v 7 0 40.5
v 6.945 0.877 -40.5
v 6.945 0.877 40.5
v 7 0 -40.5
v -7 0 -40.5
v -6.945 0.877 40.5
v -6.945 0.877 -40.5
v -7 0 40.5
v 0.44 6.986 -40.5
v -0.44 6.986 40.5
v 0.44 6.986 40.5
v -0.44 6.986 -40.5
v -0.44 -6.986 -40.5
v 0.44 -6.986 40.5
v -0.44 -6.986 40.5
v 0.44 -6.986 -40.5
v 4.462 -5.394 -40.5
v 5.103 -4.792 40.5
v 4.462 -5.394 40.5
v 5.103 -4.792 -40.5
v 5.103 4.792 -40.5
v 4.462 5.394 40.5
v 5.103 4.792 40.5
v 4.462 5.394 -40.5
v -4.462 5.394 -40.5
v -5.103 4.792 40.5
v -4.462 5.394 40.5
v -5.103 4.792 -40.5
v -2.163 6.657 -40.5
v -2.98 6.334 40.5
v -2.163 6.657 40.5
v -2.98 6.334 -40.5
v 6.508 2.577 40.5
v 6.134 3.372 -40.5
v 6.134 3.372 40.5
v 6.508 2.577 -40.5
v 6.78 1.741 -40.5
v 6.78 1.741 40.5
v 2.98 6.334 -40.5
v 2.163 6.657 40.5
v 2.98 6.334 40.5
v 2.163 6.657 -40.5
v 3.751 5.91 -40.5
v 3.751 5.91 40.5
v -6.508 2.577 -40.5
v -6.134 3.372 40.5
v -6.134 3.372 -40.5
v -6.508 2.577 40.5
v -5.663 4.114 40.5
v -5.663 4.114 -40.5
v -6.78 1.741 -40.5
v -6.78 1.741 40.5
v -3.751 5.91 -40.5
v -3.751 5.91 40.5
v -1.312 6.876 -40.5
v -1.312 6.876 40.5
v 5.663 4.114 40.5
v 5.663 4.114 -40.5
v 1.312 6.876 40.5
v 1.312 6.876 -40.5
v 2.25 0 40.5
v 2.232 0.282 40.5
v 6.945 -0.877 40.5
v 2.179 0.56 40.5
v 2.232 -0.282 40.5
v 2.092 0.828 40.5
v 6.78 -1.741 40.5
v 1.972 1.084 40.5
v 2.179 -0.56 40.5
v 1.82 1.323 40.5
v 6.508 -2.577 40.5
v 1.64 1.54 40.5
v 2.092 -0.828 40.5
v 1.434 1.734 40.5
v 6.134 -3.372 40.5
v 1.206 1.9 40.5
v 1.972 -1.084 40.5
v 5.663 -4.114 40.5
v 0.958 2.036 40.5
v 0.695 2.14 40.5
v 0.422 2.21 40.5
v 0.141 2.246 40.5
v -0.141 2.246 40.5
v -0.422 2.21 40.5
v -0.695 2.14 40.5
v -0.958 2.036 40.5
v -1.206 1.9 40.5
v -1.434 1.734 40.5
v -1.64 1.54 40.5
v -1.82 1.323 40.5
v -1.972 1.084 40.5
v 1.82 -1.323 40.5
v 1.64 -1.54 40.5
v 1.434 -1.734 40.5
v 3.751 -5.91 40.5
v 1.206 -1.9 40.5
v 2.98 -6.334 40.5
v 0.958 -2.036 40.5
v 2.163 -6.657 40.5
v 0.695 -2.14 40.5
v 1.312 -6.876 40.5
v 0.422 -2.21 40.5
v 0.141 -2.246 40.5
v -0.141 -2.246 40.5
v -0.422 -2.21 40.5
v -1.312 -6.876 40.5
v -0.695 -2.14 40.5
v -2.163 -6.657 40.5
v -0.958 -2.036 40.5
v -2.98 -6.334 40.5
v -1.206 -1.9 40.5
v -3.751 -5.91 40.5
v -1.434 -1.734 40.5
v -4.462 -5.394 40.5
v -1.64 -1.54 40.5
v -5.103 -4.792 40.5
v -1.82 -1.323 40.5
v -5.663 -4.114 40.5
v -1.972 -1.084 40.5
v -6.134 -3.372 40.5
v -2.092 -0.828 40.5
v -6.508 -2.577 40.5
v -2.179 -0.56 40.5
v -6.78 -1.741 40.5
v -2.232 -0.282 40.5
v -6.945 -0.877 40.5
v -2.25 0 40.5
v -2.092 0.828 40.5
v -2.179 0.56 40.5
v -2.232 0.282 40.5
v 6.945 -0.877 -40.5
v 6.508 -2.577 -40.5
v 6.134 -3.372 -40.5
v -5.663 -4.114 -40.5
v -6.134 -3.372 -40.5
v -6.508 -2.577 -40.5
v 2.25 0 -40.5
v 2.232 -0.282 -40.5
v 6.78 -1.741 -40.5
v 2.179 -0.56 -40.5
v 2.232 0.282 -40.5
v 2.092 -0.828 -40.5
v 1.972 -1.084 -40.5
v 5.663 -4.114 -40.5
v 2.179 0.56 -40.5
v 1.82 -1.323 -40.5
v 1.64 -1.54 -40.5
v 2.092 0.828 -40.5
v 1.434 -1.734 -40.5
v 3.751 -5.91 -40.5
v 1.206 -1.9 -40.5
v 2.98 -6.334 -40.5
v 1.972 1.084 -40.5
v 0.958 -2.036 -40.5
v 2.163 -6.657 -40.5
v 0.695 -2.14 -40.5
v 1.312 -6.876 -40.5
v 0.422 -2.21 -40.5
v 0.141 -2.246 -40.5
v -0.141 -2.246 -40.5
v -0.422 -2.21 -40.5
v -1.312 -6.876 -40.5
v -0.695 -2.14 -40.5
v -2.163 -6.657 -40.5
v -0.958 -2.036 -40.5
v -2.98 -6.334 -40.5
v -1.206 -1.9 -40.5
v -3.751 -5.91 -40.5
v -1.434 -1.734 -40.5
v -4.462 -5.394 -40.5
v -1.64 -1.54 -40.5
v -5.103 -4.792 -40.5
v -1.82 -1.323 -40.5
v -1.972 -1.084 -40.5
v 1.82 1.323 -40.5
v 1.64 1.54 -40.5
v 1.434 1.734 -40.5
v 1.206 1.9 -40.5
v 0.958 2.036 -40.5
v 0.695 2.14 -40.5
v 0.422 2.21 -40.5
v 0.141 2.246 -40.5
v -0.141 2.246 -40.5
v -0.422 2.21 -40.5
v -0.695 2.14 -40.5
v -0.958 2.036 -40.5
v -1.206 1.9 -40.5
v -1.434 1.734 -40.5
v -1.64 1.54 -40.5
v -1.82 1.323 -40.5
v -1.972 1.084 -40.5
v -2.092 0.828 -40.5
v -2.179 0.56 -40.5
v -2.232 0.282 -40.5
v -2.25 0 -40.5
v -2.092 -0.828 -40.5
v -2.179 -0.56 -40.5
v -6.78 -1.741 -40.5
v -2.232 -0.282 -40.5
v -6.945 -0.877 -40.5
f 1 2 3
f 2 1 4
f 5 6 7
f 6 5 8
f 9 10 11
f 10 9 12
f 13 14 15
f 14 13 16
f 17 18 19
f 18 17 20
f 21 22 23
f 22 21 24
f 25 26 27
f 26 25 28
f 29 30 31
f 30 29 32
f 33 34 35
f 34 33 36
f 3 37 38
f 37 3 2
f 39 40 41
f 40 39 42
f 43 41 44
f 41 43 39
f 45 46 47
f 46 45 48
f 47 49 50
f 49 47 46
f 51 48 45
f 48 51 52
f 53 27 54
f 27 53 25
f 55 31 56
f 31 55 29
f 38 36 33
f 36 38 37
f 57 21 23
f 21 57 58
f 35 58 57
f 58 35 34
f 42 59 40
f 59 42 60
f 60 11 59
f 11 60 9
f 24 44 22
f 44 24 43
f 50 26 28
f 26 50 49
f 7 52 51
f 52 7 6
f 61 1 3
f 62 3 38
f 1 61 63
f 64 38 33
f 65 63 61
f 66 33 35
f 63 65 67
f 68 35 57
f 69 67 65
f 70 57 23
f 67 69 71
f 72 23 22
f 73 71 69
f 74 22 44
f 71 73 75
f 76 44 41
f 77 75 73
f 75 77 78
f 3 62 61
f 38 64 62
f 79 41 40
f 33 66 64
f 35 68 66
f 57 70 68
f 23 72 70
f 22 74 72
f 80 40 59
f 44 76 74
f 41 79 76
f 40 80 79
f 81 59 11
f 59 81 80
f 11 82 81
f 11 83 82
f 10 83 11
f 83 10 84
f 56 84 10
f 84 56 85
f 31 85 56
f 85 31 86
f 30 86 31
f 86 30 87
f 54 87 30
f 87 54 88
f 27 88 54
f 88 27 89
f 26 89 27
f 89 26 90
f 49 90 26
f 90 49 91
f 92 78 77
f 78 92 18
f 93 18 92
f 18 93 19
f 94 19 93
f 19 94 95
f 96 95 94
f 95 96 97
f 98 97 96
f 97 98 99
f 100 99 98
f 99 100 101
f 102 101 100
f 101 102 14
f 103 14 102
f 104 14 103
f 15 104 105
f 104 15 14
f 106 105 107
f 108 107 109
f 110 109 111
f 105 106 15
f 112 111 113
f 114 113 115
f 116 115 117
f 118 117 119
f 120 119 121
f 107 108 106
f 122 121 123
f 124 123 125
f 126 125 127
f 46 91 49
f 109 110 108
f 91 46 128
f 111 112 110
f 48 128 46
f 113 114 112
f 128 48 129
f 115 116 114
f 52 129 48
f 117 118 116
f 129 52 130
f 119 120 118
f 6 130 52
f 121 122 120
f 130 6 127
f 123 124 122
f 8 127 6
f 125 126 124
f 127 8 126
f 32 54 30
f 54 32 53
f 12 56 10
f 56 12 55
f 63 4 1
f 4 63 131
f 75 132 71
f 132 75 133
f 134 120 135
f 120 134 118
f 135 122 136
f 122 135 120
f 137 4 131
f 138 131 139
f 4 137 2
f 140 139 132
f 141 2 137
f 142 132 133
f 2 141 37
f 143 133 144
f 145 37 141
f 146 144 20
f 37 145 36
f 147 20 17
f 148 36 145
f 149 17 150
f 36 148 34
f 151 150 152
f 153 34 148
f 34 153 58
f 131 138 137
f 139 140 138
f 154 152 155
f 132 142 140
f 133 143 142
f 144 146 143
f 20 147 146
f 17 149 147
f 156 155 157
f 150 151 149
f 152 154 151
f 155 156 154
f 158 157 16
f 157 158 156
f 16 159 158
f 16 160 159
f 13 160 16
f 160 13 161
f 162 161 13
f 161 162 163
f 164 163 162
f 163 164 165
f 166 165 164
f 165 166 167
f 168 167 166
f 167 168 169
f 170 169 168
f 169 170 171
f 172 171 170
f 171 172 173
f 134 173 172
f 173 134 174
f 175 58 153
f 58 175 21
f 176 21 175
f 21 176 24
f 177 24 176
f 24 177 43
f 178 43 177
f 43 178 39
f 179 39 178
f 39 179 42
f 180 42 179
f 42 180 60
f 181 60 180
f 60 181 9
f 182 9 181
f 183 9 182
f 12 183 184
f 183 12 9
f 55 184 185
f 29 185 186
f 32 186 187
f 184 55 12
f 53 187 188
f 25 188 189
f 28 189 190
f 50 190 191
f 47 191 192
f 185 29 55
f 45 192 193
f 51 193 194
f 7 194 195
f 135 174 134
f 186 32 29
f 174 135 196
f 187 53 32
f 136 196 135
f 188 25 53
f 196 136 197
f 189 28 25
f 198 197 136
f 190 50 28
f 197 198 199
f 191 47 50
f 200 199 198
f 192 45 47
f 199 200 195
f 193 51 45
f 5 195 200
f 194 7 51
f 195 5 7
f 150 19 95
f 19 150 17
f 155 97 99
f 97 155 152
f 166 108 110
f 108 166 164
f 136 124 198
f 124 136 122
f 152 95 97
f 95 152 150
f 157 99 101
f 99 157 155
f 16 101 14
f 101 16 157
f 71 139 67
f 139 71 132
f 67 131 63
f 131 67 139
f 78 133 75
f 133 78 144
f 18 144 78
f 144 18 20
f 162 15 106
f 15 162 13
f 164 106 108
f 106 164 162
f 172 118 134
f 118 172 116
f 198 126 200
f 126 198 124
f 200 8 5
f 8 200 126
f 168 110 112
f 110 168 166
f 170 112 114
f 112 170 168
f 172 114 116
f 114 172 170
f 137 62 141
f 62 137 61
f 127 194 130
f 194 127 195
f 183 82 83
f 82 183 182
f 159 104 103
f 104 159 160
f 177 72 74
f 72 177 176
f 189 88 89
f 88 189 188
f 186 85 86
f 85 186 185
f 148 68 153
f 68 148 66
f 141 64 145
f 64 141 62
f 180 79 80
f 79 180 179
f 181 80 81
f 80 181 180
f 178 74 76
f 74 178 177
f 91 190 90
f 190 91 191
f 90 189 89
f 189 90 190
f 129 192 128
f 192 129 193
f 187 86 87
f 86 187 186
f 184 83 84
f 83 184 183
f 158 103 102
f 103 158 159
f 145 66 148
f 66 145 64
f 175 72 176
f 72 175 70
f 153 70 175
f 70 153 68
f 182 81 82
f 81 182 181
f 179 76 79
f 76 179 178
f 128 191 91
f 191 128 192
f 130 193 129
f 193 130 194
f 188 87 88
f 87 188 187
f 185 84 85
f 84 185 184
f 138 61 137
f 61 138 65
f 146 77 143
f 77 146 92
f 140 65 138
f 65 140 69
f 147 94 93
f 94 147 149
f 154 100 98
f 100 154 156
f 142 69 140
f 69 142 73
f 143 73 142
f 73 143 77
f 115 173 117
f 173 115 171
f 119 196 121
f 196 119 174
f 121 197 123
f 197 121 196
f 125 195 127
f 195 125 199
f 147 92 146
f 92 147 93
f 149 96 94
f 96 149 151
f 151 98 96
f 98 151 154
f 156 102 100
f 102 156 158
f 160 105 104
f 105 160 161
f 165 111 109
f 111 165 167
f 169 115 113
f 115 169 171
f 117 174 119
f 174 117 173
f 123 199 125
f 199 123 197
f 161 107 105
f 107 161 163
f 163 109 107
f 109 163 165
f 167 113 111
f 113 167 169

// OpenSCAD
$fn = 50;


difference() {
	union() {
		translate(v = [0, 0, -40.5000000000]) {
			cylinder(h = 81, r = 7.0000000000);
		}
	}
	union() {
		translate(v = [0, 0, -100.0000000000]) {
			cylinder(h = 200, r = 2.2500000000);
		}
	}
}
